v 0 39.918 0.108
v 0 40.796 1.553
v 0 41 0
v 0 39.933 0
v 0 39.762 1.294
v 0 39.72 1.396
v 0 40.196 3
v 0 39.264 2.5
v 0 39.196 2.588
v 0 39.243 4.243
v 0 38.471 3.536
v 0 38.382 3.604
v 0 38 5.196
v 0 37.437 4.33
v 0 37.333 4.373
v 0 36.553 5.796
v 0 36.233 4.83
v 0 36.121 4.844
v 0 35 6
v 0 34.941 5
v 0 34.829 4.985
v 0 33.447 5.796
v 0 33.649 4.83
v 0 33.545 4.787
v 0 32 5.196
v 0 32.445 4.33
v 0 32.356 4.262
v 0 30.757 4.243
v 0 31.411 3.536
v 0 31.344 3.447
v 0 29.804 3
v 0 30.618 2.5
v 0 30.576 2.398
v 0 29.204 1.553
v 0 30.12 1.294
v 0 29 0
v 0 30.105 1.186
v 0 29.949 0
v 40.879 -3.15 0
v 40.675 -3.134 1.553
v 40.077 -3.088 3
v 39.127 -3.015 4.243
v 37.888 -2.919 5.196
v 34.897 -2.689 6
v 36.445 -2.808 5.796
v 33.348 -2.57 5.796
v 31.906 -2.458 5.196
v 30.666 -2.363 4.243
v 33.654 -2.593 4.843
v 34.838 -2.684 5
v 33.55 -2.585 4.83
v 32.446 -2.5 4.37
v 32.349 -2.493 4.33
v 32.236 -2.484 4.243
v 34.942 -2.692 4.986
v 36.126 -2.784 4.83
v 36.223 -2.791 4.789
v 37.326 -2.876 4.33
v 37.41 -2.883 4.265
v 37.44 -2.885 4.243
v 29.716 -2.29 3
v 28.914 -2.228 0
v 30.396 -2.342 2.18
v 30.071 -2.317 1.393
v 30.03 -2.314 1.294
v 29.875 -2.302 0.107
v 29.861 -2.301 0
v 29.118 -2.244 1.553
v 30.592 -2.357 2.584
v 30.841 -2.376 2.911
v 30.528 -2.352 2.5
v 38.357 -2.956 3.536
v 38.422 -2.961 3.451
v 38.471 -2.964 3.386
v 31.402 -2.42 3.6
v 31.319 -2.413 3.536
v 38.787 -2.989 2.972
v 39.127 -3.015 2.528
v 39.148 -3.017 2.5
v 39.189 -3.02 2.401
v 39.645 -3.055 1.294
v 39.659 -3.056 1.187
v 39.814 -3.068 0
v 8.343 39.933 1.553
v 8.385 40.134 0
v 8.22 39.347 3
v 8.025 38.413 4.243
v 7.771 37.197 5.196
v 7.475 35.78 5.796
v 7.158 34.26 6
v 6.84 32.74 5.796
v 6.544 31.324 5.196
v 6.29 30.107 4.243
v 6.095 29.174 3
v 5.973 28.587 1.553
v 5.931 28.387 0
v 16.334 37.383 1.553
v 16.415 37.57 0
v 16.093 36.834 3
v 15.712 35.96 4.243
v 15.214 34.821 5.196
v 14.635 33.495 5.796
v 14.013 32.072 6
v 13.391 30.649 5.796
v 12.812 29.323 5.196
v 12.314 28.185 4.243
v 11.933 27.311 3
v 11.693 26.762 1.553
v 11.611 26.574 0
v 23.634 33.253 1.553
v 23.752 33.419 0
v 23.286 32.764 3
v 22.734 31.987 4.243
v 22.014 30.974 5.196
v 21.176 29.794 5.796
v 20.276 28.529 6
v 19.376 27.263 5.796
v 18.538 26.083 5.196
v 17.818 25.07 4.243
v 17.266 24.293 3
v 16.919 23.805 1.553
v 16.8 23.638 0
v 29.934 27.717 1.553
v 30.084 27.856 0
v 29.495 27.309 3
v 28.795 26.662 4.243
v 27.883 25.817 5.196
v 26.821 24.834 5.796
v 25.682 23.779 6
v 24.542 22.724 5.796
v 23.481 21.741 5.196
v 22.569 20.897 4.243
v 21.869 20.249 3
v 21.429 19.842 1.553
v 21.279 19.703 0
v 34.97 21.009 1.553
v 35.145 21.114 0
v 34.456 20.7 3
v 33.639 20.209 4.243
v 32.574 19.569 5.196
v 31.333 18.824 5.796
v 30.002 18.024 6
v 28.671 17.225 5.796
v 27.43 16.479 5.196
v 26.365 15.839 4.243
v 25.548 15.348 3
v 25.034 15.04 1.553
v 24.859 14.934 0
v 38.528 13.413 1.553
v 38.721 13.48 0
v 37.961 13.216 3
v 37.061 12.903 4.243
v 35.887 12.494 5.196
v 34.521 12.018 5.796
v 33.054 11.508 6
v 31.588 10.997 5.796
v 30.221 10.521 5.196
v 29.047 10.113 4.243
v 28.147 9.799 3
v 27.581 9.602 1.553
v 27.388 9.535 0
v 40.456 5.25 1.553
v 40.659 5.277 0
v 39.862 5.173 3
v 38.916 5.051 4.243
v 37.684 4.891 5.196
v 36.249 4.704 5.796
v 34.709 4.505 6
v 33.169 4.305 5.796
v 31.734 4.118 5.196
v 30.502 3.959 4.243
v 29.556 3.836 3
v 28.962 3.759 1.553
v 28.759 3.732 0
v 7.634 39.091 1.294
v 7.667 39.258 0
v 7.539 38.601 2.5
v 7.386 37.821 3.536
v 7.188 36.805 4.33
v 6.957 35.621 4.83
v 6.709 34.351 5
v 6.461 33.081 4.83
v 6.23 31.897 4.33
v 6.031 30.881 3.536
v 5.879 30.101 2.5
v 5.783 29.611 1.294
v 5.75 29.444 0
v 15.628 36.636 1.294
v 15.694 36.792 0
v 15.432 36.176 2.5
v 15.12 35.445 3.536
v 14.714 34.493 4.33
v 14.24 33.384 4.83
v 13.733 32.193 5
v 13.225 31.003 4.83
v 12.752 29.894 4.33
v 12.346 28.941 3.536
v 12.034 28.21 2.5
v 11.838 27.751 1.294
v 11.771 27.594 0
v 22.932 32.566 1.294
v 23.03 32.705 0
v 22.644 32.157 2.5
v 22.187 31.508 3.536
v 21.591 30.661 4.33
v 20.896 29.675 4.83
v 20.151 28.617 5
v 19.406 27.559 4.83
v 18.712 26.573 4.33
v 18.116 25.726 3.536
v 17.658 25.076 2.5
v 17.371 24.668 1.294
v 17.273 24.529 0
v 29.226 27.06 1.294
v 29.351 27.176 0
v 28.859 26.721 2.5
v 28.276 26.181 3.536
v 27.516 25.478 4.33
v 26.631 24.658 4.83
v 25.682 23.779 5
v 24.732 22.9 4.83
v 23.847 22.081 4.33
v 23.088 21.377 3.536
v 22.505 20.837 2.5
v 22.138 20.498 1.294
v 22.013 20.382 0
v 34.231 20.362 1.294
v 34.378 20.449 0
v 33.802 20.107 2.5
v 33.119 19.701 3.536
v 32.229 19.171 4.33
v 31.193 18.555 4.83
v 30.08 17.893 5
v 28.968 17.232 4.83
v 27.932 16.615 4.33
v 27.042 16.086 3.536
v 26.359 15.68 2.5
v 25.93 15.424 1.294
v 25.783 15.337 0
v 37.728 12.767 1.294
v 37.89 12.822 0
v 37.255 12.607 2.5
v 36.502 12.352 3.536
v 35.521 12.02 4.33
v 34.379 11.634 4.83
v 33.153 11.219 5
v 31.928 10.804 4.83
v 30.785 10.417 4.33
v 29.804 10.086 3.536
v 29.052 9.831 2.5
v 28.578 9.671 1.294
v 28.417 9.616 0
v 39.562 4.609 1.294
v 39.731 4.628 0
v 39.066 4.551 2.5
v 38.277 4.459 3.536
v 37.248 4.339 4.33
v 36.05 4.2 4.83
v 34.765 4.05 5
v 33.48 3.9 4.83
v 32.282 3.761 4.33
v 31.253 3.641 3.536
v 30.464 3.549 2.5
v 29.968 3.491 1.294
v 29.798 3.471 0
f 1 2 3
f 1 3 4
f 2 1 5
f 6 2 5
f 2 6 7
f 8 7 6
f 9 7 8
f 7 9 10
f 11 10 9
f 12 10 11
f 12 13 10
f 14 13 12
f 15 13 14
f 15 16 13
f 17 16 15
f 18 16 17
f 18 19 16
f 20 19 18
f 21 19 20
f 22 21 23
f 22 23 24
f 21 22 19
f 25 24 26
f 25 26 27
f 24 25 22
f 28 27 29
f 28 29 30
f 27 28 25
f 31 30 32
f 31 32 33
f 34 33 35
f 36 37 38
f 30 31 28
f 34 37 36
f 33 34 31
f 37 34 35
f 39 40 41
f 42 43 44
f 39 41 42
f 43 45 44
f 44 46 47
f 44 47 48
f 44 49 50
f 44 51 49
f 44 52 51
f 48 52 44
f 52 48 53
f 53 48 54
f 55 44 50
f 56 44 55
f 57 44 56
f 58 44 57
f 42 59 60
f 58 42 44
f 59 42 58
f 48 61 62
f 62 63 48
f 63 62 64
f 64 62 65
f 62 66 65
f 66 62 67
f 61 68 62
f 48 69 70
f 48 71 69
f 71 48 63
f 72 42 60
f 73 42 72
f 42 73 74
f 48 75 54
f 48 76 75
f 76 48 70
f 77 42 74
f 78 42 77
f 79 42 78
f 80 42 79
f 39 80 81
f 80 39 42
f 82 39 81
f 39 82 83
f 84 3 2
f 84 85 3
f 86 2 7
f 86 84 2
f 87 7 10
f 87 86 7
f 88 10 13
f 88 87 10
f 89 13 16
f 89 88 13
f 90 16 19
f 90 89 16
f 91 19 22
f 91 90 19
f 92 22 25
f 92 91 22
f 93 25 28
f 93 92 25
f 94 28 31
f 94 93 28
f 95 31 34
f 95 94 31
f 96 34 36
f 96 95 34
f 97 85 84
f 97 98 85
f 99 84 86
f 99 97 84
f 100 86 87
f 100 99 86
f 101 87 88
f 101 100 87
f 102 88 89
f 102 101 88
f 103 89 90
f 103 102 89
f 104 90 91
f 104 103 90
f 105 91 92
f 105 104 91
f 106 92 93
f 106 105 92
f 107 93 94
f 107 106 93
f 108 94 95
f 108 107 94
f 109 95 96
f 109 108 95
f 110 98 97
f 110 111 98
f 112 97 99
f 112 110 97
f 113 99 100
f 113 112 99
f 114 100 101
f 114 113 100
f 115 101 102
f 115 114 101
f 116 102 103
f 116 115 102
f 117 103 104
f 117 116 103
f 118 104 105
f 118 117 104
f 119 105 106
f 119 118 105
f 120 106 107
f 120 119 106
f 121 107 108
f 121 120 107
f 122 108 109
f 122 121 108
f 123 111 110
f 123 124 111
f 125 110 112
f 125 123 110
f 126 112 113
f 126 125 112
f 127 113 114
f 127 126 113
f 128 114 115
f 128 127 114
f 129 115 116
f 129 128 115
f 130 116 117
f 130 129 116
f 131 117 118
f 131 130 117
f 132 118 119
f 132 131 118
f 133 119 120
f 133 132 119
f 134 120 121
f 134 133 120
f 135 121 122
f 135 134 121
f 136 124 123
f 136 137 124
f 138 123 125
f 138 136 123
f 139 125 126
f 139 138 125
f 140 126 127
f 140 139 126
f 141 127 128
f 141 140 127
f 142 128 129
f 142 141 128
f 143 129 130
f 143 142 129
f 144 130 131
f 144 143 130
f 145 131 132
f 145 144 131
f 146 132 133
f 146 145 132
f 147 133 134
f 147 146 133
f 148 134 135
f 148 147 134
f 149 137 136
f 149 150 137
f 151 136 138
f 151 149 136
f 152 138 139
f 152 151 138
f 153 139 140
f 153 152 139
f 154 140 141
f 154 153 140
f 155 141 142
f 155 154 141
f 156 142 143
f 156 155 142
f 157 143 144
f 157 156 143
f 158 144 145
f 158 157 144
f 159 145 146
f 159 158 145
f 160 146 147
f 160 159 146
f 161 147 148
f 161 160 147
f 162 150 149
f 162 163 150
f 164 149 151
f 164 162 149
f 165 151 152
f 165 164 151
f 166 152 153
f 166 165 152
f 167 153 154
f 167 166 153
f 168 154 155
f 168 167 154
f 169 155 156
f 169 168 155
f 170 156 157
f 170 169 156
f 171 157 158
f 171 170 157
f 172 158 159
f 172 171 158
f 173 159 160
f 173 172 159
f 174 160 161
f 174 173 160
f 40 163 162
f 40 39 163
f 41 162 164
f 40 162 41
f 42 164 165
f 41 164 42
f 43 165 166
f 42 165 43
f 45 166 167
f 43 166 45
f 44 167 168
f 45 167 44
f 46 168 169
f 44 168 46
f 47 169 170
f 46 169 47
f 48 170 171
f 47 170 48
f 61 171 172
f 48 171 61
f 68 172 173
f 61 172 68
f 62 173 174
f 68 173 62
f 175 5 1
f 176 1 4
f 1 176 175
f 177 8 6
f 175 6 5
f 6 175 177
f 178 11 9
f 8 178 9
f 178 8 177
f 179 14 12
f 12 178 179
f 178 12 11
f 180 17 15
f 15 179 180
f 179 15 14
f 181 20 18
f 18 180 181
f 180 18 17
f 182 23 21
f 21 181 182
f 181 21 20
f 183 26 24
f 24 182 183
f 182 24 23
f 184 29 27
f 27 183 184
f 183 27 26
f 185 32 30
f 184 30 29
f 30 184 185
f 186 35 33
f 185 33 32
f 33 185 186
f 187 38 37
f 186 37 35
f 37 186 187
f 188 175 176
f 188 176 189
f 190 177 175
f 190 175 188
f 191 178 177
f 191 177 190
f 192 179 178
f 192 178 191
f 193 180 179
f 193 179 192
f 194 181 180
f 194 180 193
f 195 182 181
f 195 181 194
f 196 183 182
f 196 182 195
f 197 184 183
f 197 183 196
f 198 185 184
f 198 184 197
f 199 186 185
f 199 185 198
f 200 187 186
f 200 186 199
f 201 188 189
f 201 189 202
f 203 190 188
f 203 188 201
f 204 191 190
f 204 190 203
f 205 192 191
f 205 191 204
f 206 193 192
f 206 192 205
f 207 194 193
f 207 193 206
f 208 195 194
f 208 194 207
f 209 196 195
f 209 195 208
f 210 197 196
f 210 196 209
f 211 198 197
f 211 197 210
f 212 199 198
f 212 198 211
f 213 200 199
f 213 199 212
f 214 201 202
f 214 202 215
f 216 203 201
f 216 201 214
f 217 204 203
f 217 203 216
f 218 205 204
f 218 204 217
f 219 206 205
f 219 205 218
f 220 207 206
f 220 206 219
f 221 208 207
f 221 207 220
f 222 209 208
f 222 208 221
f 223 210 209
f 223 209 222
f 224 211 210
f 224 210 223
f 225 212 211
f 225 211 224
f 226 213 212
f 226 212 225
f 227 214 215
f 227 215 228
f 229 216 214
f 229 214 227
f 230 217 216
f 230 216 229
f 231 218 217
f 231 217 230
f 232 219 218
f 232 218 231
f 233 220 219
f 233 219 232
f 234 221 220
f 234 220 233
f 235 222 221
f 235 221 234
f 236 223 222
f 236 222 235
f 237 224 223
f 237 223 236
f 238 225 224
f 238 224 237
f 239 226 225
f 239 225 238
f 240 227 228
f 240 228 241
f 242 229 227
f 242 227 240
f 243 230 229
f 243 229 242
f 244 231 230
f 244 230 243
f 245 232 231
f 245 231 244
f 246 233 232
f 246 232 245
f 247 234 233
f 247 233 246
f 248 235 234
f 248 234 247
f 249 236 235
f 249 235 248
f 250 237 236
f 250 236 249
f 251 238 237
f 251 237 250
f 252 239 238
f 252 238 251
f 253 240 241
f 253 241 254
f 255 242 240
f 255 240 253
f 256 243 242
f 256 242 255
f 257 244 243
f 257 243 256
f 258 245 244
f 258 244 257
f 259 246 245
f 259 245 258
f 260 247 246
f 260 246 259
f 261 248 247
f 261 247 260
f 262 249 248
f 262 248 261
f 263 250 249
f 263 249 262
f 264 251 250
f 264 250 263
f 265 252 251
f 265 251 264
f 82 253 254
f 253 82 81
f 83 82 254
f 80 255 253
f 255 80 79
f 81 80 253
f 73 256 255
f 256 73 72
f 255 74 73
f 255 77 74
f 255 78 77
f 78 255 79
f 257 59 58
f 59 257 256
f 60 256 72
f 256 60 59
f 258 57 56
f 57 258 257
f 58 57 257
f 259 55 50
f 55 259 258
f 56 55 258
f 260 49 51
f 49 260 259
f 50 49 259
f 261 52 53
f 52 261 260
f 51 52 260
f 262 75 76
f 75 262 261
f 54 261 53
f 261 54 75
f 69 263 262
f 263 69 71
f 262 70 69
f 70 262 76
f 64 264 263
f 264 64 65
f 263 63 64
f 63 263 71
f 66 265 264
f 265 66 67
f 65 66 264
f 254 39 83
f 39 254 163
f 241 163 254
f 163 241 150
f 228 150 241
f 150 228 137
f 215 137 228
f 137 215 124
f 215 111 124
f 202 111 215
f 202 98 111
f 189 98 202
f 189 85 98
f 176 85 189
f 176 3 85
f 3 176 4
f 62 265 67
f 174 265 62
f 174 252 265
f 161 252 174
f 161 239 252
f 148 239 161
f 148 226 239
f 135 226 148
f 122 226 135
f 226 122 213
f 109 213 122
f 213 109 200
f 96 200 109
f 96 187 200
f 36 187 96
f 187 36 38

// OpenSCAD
// file: ../build_environments.scad
// build_environments.scad: modules to build level sections
//

module pool(diameter=10.0, wall_height=2.0, step_width=3.0, connections=[])
{
    difference() {
        union() {
        difference() {
            cylinder(h=0.5,r1=diameter+step_width,r2=diameter+step_width,$fn=48);
            translate([0,0,-0.1])
                cylinder(h=0.7,r1=diameter,r2=diameter,$fn=48);
        }
        difference() {
            cylinder(h=wall_height,r1=diameter+step_width+1.0,r2=diameter+step_width+1.0,$fn=48);
            translate([0,0,-0.1])
                cylinder(h=wall_height+0.2,r1=diameter+step_width,r2=diameter+step_width,$fn=48);
        }
        }
    
        for (c = connections)
        {
            rotate([0,90,0]) {
                angle = atan2(c[1],c[0]);
                rotate([-angle,0,0]) {
                    cylinder(h=diameter+5.0,r1=c[2],r2=c[2],$fn=48);
                }
            }
        }
    }
}

module straight(length=10.0, width=2.0, dy1=0.0, dy2=0.0, dz=0.0)
{
    dims = [0, 0, 0, 0, 0, (dz/length)];
    matrix = [
        [ 1, dims[0], dims[1], 0 ],
        [ dims[2], 1, dims[4], 0 ],
        [ dims[5], dims[3], 1, 0 ],
        [ 0, 0, 0, 1 ]
    ];
    multmatrix(matrix)
    difference() {
        translate([dy1,0,0])
        union() {
            rotate([0,90,0]) {
                difference() {
                    cylinder(h=(length-dy1-dy2),r1=width+1.0,r2=width+1.0,$fn=24);
                    translate([0,0,-0.1])
                        cylinder(h=(length-dy1-dy2+0.2),r1=width,r2=width,$fn=24);
                }
                difference() {
                    cylinder(h=1.0,r1=width+2.0,r2=width+2.0,$fn=24);
                    translate([0,0,-0.1])
                        cylinder(h=1.2,r1=width,r2=width,$fn=24);
                }
                translate([0,0,(length-dy1-dy2)-1.0]) {
                    difference() {
                        cylinder(h=1.0,r1=width+2.0,r2=width+2.0,$fn=24);
                        translate([0,0,-0.1])
                            cylinder(h=1.2,r1=width,r2=width,$fn=24);
                    }
                }
            }
        }
        translate([0,0,-(2*width+4.0)/2])
            cube([3*length,3*length,2*width+4.0],center=true);
    }
}

module curve(p0=[0,0], center=[0,0], dir=1, angle=0.0, width=2.0)
{
    radius = sqrt((p0[0]-center[0])*(p0[0]-center[0]) + (p0[1]-center[1])*(p0[1]-center[1]));
    if (dir == 0) {
        difference() {
            rotate([0,0,-90])
            difference() {
                rotate_extrude(angle = angle, convexity = 10, $fn=32)
                    translate([radius, 0, 0])
                        circle(r = width+1.0,$fn=24);
                rotate([0,0,-1.0])
                    rotate_extrude(angle = angle+2.0, convexity = 10, $fn=32)
                        translate([radius, 0, 0])
                            circle(r = width,$fn=24);
            }
            translate([0,0,-(2*width+4.0)/2])
                cube([5*radius,5*radius,2*width+4.0],center=true);
        }
    }
    else {
        difference() {
            rotate([0,0,90])
            difference() {
                rotate_extrude(angle = -angle, convexity = 10, $fn=32)
                    translate([radius, 0, 0])
                        circle(r = width+1.0,$fn=24);
                rotate([0,0,1.0])
                    rotate_extrude(angle = -angle-2.0, convexity = 10, $fn=32)
                        translate([radius, 0, 0])
                            circle(r = width,$fn=24);
            }
            translate([0,0,-(2*width+4.0)/2])
                cube([5*radius,5*radius,2*width+4.0],center=true);
        }
    }

}

// test pool
//pool(diameter=12.0000, wall_height=3.0000, step_width=3.0000, connections=[[0.0000,-26.0000,2.0000], [23.6074,0.0000,2.0000]]);

// test straight, slope
//straight(length=26.0000, width=2.0000, dy1=11.8322, dy2=6.7082, dz=0.0000);
//straight(length=29.1549, width=12.0000, dy1=0.0000, dy2=0.0000, dz=-15.0000);

// test curve
//curve(p0=[23.6074, 0.0000], center=[23.6074, 5.0000], dir=0, angle=60.1011, width=2.0000);
//curve(p0=[33.6426, 12.4219], center=[37.9771, 9.9295], dir=1, angle=120.4627, width=2.0000);
// main file
use <../build_environments.scad>;
curve(p0=[-84.5934, -330.6366], center=[-84.4402, -295.6369], dir=1, angle=94.4062, width=5.0000);
